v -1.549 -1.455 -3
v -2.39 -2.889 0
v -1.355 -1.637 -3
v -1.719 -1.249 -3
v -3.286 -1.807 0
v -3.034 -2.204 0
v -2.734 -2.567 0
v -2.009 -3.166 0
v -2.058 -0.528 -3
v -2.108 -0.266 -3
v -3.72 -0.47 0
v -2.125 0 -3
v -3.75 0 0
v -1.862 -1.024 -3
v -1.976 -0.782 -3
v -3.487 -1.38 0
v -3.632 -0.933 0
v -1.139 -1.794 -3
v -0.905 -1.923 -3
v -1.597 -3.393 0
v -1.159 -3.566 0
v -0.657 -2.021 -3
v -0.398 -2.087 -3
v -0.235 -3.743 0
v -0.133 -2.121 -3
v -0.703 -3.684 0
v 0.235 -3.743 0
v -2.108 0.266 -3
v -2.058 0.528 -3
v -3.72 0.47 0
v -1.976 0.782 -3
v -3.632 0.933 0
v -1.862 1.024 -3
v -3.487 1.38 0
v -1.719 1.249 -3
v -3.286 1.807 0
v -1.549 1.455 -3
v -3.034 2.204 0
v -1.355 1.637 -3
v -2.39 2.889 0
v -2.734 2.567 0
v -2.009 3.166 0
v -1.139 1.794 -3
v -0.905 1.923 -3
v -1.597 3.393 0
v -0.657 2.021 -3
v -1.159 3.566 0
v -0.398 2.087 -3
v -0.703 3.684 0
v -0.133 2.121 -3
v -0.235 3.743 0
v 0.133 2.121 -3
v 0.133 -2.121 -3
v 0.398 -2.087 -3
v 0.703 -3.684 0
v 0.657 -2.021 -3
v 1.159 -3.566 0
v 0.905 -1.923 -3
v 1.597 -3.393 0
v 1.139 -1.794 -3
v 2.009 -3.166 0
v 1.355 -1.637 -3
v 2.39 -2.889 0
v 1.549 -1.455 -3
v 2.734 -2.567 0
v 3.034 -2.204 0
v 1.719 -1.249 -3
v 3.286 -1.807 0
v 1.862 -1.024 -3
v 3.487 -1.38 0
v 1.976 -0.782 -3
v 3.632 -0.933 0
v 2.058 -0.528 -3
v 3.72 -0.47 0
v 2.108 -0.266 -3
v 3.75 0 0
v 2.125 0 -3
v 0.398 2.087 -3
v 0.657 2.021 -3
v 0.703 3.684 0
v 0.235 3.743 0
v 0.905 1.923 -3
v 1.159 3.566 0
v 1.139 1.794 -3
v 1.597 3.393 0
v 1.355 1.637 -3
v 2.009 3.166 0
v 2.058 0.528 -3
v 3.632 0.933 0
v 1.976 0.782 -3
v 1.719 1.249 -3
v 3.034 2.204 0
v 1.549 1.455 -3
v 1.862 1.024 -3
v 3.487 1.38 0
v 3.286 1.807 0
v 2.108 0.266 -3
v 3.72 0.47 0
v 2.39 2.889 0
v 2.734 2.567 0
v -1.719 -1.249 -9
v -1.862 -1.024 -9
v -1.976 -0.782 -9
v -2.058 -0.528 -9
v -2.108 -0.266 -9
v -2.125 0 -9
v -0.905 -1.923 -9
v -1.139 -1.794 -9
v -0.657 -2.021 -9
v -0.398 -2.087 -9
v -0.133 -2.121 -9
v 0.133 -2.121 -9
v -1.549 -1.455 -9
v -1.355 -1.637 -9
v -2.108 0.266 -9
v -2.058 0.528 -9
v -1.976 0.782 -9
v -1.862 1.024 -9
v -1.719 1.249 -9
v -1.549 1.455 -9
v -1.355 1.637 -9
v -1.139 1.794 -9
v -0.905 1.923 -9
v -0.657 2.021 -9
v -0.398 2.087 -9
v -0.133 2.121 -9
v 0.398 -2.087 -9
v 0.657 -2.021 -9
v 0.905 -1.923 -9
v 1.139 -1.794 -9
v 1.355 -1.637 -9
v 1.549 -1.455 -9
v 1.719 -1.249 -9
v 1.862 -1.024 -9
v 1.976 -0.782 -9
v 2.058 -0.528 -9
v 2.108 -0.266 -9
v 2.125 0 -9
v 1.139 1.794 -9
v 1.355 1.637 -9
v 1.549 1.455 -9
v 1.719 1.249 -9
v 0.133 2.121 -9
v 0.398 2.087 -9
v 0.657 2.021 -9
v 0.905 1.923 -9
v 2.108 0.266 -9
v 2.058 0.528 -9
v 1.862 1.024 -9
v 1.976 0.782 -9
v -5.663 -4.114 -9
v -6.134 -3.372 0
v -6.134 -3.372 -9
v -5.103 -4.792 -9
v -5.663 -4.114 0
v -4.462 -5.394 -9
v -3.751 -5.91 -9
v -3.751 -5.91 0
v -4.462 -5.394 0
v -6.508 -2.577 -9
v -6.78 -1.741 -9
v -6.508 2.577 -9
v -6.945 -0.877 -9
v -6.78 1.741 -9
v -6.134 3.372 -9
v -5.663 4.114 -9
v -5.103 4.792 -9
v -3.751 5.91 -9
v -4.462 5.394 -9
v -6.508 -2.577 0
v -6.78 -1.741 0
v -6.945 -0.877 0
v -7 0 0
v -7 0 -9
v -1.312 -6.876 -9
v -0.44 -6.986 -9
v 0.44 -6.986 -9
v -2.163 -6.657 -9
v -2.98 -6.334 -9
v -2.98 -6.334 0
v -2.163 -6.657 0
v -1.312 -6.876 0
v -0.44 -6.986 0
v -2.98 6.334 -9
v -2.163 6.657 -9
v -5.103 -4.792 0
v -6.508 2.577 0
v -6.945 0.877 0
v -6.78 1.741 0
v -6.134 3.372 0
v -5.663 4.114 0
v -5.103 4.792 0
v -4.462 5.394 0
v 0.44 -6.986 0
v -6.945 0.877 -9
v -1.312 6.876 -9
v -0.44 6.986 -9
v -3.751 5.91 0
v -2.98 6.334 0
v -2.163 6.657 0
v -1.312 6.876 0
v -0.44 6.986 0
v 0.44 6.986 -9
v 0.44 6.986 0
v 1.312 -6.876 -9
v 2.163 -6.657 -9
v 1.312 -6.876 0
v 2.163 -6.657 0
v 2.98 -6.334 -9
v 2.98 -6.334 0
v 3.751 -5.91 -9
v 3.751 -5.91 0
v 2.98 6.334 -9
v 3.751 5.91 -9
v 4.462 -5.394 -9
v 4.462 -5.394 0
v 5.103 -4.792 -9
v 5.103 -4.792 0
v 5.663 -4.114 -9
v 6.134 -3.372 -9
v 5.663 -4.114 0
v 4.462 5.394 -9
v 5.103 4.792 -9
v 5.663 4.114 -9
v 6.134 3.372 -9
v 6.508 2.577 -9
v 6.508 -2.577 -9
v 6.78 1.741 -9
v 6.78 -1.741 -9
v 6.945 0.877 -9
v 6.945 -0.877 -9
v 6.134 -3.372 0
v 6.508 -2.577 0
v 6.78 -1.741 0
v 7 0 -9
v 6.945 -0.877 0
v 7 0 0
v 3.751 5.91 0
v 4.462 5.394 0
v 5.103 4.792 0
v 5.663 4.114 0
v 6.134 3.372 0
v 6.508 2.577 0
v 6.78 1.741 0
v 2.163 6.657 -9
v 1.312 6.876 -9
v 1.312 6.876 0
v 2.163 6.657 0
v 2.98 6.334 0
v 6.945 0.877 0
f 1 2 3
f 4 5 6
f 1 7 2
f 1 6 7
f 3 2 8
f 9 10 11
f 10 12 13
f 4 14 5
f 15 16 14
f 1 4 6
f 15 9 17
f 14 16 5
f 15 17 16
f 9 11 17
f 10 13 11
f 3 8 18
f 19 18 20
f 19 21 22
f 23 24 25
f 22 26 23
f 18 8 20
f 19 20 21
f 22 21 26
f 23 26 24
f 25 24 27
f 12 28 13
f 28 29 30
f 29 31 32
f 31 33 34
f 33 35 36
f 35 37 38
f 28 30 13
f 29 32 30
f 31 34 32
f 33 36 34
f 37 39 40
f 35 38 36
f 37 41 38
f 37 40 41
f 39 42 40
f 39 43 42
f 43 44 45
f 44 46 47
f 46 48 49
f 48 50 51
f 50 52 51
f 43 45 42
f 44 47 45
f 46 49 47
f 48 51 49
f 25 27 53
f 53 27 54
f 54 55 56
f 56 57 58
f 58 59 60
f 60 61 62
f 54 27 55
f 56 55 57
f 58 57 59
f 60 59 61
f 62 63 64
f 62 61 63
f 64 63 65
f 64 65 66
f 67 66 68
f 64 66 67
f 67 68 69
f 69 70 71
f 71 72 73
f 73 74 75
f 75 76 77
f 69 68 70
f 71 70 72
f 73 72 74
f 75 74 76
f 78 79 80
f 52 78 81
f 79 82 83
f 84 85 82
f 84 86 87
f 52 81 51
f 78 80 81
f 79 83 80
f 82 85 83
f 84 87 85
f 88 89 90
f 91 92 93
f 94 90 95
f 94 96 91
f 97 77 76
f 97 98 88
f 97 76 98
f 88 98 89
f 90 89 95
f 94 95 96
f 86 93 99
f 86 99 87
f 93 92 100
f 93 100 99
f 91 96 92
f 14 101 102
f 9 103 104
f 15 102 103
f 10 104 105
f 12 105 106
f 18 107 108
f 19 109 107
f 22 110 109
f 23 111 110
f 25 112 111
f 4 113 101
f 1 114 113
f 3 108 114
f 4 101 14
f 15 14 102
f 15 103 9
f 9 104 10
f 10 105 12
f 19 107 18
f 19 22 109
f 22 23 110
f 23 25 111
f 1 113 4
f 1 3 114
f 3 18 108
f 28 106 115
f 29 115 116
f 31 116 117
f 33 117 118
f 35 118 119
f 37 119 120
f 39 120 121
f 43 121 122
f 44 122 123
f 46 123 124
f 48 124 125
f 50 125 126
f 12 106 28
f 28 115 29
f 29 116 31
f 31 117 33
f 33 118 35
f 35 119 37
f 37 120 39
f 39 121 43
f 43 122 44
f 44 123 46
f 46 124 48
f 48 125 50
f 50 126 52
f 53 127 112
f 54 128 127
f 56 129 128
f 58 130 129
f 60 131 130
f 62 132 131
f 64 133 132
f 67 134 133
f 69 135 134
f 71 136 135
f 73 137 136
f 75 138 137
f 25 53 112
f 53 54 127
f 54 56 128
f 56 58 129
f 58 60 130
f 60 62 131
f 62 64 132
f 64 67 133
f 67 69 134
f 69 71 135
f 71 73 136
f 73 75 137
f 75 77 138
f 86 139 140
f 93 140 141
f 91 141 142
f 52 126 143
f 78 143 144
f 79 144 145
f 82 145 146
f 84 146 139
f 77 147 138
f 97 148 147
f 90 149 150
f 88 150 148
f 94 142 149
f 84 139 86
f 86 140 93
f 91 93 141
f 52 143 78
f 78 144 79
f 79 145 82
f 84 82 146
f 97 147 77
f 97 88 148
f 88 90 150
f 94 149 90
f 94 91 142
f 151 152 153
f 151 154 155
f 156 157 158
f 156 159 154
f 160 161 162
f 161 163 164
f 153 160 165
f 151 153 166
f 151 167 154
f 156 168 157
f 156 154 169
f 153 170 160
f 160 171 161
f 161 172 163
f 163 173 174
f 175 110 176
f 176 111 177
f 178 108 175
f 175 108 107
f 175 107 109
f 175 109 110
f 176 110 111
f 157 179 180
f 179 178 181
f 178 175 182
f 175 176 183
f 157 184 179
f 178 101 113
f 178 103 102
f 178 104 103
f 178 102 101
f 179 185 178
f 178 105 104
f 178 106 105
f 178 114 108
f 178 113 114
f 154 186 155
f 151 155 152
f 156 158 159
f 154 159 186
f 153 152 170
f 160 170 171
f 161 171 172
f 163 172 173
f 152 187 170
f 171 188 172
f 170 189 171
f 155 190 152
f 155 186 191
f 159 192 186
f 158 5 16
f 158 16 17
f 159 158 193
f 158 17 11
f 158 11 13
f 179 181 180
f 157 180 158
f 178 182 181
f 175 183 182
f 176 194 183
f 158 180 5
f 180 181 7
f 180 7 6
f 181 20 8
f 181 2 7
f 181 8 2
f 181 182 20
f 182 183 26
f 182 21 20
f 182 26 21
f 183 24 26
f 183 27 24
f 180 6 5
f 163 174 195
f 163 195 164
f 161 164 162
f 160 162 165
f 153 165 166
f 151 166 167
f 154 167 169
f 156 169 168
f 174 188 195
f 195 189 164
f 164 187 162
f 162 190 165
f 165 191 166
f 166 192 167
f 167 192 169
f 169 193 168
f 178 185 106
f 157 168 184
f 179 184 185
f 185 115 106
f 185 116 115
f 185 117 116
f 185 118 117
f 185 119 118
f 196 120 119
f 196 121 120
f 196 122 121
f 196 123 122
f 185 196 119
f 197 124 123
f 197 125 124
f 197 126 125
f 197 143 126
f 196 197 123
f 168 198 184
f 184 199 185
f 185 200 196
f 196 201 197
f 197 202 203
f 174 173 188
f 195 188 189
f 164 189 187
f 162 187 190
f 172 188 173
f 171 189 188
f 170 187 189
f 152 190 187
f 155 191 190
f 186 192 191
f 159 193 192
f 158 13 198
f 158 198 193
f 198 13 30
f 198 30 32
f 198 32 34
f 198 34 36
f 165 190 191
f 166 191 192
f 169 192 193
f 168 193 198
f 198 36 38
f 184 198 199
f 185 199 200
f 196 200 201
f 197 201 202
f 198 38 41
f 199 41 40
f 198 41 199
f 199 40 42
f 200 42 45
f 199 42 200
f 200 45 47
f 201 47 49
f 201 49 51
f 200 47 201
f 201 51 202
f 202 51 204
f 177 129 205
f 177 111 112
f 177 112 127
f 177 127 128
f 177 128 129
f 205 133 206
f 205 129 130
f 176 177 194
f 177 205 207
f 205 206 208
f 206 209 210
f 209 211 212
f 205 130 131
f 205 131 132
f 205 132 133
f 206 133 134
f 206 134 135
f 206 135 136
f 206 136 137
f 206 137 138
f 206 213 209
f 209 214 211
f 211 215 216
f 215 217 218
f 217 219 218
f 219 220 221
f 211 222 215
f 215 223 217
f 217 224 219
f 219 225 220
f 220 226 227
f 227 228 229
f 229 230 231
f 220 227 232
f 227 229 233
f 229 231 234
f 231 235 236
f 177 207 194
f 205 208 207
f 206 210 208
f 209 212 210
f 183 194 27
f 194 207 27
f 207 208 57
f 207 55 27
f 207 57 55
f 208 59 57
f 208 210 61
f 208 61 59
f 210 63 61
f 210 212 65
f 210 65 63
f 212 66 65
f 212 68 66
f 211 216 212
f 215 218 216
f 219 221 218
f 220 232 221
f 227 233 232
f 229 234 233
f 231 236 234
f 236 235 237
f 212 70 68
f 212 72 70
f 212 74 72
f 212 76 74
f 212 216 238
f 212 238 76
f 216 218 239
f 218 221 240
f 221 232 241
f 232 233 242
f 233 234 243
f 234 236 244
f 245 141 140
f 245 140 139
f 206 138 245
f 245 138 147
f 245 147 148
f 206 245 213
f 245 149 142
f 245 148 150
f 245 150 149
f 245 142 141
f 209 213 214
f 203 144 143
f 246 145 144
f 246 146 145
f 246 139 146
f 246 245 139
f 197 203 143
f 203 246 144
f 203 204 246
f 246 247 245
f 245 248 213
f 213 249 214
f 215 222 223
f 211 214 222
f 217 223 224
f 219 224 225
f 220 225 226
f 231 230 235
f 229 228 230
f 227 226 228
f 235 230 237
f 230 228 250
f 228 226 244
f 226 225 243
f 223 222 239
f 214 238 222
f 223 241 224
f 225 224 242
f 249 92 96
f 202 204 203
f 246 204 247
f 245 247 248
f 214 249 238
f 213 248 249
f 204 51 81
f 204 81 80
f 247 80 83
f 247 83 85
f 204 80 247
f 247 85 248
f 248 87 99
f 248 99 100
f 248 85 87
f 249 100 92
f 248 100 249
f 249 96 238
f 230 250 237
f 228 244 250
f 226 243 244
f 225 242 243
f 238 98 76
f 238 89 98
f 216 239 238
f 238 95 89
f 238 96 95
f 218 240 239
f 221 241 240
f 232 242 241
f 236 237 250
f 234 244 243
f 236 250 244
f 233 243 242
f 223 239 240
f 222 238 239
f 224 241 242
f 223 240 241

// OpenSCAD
$fn = 50;


difference() {
	union() {
		translate(v = [0, 0, -9.0000000000]) {
			cylinder(h = 9, r = 7.0000000000);
		}
	}
	union() {
		translate(v = [0, 0, 0]) {
			rotate(a = [0, 0, 0]) {
				difference() {
					union() {
						translate(v = [0, 0, -12.0000000000]) {
							cylinder(h = 12, r = 2.0000000000);
						}
						translate(v = [0, 0, -3]) {
							cylinder(h = 3, r1 = 2.1250000000, r2 = 3.7500000000);
						}
						translate(v = [0, 0, -12.0000000000]) {
							cylinder(h = 12, r = 2.1250000000);
						}
						translate(v = [0, 0, -12.0000000000]) {
							cylinder(h = 12, r = 2.0000000000);
						}
					}
					union();
				}
			}
		}
	}
}
